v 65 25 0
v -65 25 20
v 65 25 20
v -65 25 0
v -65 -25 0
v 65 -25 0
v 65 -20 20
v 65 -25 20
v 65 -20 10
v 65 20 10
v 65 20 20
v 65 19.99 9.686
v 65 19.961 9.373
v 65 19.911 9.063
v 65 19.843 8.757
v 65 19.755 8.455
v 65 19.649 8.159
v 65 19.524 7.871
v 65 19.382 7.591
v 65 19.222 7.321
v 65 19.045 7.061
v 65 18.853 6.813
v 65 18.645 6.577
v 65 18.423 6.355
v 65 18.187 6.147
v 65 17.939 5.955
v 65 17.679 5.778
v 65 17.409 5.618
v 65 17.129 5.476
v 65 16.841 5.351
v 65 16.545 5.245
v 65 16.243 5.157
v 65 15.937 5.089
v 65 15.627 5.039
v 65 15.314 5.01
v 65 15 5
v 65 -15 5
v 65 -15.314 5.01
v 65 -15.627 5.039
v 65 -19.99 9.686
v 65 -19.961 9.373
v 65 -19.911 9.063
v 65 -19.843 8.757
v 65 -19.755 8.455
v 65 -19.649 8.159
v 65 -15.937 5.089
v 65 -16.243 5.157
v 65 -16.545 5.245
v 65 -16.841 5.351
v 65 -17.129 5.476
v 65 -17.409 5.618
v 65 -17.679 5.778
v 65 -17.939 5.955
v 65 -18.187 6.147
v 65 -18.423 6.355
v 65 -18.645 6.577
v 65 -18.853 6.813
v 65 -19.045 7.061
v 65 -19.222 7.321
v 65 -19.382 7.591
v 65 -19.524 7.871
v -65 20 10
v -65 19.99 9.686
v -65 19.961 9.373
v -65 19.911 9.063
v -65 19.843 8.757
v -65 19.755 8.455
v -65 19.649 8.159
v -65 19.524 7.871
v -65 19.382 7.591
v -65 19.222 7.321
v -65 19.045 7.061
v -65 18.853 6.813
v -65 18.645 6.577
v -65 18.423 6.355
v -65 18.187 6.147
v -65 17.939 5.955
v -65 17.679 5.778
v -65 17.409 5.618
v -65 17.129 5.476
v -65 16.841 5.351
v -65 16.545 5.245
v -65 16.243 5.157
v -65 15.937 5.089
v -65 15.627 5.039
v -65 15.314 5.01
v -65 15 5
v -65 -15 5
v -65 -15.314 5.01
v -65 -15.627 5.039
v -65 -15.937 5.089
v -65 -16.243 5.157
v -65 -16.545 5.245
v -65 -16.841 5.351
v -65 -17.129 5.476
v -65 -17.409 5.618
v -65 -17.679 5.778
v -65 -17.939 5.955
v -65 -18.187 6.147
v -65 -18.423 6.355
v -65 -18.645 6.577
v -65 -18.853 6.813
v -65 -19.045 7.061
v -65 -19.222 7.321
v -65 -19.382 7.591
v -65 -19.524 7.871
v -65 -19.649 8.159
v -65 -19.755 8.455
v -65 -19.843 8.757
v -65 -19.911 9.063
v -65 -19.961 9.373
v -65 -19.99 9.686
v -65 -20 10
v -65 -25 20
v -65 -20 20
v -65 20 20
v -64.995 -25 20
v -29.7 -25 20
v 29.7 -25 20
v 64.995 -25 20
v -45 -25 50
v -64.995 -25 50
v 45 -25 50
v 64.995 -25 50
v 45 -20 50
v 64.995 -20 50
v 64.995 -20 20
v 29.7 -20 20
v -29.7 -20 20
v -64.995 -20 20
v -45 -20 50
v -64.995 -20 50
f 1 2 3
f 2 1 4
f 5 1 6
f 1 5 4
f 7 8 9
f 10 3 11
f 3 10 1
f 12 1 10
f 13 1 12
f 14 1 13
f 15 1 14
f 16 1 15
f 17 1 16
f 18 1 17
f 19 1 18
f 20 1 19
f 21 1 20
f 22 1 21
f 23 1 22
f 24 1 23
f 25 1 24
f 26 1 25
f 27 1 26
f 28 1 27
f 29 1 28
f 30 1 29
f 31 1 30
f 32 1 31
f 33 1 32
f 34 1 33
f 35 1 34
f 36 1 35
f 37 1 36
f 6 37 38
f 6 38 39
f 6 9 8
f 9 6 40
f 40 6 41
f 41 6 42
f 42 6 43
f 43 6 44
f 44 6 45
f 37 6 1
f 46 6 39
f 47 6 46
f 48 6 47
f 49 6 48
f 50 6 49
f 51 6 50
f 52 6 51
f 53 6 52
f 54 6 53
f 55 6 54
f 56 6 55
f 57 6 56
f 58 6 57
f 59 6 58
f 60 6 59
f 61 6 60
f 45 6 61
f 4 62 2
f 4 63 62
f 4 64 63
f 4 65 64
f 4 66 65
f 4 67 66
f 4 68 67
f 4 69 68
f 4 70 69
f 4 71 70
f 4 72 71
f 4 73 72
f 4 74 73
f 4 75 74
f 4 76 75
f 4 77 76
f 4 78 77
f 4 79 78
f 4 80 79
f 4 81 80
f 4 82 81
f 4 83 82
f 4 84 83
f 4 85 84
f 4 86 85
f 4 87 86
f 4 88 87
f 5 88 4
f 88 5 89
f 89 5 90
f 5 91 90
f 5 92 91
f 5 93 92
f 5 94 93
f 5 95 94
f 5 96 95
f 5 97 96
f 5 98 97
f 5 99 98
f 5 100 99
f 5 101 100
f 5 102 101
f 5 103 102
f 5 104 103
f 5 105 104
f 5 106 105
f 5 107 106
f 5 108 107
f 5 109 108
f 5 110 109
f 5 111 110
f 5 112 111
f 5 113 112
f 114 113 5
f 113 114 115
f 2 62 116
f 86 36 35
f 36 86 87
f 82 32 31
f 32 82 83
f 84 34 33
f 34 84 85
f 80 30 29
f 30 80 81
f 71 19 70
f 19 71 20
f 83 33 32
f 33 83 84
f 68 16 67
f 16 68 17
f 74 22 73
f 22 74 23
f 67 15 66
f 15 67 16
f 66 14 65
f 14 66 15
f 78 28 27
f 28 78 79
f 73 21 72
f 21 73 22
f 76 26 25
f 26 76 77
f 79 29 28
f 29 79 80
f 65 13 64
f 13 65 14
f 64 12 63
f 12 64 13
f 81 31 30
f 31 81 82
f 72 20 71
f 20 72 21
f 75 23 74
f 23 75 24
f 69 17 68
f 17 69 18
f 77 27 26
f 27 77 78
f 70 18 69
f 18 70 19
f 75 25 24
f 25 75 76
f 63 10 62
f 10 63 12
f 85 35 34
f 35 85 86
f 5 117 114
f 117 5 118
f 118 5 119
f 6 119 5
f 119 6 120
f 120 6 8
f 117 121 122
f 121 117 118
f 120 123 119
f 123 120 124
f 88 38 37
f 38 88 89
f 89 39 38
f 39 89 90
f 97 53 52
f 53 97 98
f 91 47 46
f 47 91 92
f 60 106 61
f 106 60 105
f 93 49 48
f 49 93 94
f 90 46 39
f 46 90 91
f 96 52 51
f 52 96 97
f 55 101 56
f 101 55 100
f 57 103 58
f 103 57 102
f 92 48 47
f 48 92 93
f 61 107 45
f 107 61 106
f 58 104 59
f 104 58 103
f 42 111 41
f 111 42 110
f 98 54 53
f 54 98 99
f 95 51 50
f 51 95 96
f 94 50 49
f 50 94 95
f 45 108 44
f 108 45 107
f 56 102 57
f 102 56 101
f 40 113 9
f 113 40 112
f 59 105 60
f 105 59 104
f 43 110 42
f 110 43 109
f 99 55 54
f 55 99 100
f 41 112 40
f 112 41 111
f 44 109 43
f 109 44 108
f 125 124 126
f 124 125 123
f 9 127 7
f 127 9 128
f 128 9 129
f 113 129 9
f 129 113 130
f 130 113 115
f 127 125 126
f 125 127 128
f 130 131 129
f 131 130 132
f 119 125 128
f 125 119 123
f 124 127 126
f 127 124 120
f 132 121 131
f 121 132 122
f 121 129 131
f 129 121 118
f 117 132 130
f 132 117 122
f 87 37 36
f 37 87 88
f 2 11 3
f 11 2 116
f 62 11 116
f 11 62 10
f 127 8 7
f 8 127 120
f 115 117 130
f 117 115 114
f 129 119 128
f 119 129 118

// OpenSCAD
$fn=100;  // Number of facets for circles

// Default Parameters (mm)
lengthBase = 130; // Length of the base
widthGap = 40;    // Width of the gap holding the record
widthWall = 5;    // Wall thickness
heightBase = widthWall;  // Height of the base
heightFrontWall = 15;  // Front wall height, excluding the base
heightMount = 50;  // Height of the back mount
topLength = 20;  // Length of the top of the back mount
EPS=0.01;

module vinyl_hook_holder(
    lengthBase=lengthBase, 
    widthGap=widthGap,
    widthWall=widthWall, 
    heightBase=heightBase, 
    heightFrontWall=heightFrontWall,
    heightMount=heightMount
    ) {
        // Setup
        widthBase = widthGap + (2 * widthWall);  // Width of the base
        heightFront = heightFrontWall + widthWall;  // Total height of the front wall
        moveFront = (widthBase / 2) - (widthWall / 2);  // Front wall position
        moveBack = -moveFront;  // Back wall position
        lengthMount = 0.7 * lengthBase;  // Length of the back mount
        halfWall = widthWall / 2;  // Half the width of the wall
        topLength = topLength*2;  // Length of the top of the back mount

        // Base
        color("blue", 0.5) {
            linear_extrude(heightBase) {
                square([lengthBase, widthBase], center = true);
            }
        }
        // Front Channel
        translate([0, moveFront-halfWall, 0]) {
            difference() {
                linear_extrude(widthWall*2) {
                    square([lengthBase, widthWall*2], center = true);
                }
                translate([0, -widthWall, widthWall*2]) {
                    rotate(a = [0, 90, 0]) {
                        cylinder(h = lengthBase + EPS, r = widthWall, center = true);
                    }
                }                
            }
        }

        // Back Channel
        translate([0, moveBack+halfWall, 0]) {
            color("red") {
            difference() {
                linear_extrude(widthWall*2) {
                    square([lengthBase, widthWall*2], center = true);
                }
                translate([0, widthWall, widthWall*2]) {
                    rotate(a = [0, 90, 0]) {
                        cylinder(h = lengthBase + EPS, r = widthWall, center = true);
                    }
                }                
            }
            }
        }

        // Front wall
        translate([0, moveFront, 0]) {
            color("blue", 0.5) {
                linear_extrude(heightFront) {
                    square([lengthBase, widthWall], center = true);
                }
            }
        }


        // Back wall
        translate([0, moveBack, 0]) {
            color("purple", 0.5) {
                linear_extrude(heightFront) {
                    square([lengthBase, widthWall], center = true);
                }
            }
        }

        // Back mount (trapezoid)
        translate([lengthBase/2, moveBack, 0]) {
            color("green", 0.5) {
                difference() {
                    linear_extrude(height=heightMount, scale=[topLength / lengthMount, 1]) {
                        square([lengthMount, widthWall], center=true);
                    }
                    translate([6*widthWall,0,heightMount/2]) {
                        cube([12*widthWall+EPS, 2*widthWall+EPS, heightMount+EPS], center=true);
                    }
                }
            }
        }

        translate([-lengthBase/2, moveBack, 0]) {
            color("green", 0.5) {
                difference() {
                    linear_extrude(height=heightMount, scale=[topLength / lengthMount, 1]) {
                        square([lengthMount, widthWall], center=true);
                    }
                    translate([-6*widthWall,0,heightMount/2]) {
                        cube([12*widthWall+EPS, 2*widthWall+EPS, heightMount+EPS], center=true);
                    }
                }
            }
        }
    }

// Main --------------------
vinyl_hook_holder();

// Testing -----------------

module test_widths() {
    // Test different widths of inner channel
  vinyl_hook_holder(
    heightMount=0,
    lengthBase=40,
    widthGap=15
    );

    translate([0, 50, 0]) {
    vinyl_hook_holder(
        heightMount=0,
        lengthBase=40,
        widthGap=20
    );
    } 

    translate([0, 100, 0]) {
    vinyl_hook_holder(
        heightMount=0,
        lengthBase=40,
        widthGap=25
    );
    } 
}

// test_widths();
